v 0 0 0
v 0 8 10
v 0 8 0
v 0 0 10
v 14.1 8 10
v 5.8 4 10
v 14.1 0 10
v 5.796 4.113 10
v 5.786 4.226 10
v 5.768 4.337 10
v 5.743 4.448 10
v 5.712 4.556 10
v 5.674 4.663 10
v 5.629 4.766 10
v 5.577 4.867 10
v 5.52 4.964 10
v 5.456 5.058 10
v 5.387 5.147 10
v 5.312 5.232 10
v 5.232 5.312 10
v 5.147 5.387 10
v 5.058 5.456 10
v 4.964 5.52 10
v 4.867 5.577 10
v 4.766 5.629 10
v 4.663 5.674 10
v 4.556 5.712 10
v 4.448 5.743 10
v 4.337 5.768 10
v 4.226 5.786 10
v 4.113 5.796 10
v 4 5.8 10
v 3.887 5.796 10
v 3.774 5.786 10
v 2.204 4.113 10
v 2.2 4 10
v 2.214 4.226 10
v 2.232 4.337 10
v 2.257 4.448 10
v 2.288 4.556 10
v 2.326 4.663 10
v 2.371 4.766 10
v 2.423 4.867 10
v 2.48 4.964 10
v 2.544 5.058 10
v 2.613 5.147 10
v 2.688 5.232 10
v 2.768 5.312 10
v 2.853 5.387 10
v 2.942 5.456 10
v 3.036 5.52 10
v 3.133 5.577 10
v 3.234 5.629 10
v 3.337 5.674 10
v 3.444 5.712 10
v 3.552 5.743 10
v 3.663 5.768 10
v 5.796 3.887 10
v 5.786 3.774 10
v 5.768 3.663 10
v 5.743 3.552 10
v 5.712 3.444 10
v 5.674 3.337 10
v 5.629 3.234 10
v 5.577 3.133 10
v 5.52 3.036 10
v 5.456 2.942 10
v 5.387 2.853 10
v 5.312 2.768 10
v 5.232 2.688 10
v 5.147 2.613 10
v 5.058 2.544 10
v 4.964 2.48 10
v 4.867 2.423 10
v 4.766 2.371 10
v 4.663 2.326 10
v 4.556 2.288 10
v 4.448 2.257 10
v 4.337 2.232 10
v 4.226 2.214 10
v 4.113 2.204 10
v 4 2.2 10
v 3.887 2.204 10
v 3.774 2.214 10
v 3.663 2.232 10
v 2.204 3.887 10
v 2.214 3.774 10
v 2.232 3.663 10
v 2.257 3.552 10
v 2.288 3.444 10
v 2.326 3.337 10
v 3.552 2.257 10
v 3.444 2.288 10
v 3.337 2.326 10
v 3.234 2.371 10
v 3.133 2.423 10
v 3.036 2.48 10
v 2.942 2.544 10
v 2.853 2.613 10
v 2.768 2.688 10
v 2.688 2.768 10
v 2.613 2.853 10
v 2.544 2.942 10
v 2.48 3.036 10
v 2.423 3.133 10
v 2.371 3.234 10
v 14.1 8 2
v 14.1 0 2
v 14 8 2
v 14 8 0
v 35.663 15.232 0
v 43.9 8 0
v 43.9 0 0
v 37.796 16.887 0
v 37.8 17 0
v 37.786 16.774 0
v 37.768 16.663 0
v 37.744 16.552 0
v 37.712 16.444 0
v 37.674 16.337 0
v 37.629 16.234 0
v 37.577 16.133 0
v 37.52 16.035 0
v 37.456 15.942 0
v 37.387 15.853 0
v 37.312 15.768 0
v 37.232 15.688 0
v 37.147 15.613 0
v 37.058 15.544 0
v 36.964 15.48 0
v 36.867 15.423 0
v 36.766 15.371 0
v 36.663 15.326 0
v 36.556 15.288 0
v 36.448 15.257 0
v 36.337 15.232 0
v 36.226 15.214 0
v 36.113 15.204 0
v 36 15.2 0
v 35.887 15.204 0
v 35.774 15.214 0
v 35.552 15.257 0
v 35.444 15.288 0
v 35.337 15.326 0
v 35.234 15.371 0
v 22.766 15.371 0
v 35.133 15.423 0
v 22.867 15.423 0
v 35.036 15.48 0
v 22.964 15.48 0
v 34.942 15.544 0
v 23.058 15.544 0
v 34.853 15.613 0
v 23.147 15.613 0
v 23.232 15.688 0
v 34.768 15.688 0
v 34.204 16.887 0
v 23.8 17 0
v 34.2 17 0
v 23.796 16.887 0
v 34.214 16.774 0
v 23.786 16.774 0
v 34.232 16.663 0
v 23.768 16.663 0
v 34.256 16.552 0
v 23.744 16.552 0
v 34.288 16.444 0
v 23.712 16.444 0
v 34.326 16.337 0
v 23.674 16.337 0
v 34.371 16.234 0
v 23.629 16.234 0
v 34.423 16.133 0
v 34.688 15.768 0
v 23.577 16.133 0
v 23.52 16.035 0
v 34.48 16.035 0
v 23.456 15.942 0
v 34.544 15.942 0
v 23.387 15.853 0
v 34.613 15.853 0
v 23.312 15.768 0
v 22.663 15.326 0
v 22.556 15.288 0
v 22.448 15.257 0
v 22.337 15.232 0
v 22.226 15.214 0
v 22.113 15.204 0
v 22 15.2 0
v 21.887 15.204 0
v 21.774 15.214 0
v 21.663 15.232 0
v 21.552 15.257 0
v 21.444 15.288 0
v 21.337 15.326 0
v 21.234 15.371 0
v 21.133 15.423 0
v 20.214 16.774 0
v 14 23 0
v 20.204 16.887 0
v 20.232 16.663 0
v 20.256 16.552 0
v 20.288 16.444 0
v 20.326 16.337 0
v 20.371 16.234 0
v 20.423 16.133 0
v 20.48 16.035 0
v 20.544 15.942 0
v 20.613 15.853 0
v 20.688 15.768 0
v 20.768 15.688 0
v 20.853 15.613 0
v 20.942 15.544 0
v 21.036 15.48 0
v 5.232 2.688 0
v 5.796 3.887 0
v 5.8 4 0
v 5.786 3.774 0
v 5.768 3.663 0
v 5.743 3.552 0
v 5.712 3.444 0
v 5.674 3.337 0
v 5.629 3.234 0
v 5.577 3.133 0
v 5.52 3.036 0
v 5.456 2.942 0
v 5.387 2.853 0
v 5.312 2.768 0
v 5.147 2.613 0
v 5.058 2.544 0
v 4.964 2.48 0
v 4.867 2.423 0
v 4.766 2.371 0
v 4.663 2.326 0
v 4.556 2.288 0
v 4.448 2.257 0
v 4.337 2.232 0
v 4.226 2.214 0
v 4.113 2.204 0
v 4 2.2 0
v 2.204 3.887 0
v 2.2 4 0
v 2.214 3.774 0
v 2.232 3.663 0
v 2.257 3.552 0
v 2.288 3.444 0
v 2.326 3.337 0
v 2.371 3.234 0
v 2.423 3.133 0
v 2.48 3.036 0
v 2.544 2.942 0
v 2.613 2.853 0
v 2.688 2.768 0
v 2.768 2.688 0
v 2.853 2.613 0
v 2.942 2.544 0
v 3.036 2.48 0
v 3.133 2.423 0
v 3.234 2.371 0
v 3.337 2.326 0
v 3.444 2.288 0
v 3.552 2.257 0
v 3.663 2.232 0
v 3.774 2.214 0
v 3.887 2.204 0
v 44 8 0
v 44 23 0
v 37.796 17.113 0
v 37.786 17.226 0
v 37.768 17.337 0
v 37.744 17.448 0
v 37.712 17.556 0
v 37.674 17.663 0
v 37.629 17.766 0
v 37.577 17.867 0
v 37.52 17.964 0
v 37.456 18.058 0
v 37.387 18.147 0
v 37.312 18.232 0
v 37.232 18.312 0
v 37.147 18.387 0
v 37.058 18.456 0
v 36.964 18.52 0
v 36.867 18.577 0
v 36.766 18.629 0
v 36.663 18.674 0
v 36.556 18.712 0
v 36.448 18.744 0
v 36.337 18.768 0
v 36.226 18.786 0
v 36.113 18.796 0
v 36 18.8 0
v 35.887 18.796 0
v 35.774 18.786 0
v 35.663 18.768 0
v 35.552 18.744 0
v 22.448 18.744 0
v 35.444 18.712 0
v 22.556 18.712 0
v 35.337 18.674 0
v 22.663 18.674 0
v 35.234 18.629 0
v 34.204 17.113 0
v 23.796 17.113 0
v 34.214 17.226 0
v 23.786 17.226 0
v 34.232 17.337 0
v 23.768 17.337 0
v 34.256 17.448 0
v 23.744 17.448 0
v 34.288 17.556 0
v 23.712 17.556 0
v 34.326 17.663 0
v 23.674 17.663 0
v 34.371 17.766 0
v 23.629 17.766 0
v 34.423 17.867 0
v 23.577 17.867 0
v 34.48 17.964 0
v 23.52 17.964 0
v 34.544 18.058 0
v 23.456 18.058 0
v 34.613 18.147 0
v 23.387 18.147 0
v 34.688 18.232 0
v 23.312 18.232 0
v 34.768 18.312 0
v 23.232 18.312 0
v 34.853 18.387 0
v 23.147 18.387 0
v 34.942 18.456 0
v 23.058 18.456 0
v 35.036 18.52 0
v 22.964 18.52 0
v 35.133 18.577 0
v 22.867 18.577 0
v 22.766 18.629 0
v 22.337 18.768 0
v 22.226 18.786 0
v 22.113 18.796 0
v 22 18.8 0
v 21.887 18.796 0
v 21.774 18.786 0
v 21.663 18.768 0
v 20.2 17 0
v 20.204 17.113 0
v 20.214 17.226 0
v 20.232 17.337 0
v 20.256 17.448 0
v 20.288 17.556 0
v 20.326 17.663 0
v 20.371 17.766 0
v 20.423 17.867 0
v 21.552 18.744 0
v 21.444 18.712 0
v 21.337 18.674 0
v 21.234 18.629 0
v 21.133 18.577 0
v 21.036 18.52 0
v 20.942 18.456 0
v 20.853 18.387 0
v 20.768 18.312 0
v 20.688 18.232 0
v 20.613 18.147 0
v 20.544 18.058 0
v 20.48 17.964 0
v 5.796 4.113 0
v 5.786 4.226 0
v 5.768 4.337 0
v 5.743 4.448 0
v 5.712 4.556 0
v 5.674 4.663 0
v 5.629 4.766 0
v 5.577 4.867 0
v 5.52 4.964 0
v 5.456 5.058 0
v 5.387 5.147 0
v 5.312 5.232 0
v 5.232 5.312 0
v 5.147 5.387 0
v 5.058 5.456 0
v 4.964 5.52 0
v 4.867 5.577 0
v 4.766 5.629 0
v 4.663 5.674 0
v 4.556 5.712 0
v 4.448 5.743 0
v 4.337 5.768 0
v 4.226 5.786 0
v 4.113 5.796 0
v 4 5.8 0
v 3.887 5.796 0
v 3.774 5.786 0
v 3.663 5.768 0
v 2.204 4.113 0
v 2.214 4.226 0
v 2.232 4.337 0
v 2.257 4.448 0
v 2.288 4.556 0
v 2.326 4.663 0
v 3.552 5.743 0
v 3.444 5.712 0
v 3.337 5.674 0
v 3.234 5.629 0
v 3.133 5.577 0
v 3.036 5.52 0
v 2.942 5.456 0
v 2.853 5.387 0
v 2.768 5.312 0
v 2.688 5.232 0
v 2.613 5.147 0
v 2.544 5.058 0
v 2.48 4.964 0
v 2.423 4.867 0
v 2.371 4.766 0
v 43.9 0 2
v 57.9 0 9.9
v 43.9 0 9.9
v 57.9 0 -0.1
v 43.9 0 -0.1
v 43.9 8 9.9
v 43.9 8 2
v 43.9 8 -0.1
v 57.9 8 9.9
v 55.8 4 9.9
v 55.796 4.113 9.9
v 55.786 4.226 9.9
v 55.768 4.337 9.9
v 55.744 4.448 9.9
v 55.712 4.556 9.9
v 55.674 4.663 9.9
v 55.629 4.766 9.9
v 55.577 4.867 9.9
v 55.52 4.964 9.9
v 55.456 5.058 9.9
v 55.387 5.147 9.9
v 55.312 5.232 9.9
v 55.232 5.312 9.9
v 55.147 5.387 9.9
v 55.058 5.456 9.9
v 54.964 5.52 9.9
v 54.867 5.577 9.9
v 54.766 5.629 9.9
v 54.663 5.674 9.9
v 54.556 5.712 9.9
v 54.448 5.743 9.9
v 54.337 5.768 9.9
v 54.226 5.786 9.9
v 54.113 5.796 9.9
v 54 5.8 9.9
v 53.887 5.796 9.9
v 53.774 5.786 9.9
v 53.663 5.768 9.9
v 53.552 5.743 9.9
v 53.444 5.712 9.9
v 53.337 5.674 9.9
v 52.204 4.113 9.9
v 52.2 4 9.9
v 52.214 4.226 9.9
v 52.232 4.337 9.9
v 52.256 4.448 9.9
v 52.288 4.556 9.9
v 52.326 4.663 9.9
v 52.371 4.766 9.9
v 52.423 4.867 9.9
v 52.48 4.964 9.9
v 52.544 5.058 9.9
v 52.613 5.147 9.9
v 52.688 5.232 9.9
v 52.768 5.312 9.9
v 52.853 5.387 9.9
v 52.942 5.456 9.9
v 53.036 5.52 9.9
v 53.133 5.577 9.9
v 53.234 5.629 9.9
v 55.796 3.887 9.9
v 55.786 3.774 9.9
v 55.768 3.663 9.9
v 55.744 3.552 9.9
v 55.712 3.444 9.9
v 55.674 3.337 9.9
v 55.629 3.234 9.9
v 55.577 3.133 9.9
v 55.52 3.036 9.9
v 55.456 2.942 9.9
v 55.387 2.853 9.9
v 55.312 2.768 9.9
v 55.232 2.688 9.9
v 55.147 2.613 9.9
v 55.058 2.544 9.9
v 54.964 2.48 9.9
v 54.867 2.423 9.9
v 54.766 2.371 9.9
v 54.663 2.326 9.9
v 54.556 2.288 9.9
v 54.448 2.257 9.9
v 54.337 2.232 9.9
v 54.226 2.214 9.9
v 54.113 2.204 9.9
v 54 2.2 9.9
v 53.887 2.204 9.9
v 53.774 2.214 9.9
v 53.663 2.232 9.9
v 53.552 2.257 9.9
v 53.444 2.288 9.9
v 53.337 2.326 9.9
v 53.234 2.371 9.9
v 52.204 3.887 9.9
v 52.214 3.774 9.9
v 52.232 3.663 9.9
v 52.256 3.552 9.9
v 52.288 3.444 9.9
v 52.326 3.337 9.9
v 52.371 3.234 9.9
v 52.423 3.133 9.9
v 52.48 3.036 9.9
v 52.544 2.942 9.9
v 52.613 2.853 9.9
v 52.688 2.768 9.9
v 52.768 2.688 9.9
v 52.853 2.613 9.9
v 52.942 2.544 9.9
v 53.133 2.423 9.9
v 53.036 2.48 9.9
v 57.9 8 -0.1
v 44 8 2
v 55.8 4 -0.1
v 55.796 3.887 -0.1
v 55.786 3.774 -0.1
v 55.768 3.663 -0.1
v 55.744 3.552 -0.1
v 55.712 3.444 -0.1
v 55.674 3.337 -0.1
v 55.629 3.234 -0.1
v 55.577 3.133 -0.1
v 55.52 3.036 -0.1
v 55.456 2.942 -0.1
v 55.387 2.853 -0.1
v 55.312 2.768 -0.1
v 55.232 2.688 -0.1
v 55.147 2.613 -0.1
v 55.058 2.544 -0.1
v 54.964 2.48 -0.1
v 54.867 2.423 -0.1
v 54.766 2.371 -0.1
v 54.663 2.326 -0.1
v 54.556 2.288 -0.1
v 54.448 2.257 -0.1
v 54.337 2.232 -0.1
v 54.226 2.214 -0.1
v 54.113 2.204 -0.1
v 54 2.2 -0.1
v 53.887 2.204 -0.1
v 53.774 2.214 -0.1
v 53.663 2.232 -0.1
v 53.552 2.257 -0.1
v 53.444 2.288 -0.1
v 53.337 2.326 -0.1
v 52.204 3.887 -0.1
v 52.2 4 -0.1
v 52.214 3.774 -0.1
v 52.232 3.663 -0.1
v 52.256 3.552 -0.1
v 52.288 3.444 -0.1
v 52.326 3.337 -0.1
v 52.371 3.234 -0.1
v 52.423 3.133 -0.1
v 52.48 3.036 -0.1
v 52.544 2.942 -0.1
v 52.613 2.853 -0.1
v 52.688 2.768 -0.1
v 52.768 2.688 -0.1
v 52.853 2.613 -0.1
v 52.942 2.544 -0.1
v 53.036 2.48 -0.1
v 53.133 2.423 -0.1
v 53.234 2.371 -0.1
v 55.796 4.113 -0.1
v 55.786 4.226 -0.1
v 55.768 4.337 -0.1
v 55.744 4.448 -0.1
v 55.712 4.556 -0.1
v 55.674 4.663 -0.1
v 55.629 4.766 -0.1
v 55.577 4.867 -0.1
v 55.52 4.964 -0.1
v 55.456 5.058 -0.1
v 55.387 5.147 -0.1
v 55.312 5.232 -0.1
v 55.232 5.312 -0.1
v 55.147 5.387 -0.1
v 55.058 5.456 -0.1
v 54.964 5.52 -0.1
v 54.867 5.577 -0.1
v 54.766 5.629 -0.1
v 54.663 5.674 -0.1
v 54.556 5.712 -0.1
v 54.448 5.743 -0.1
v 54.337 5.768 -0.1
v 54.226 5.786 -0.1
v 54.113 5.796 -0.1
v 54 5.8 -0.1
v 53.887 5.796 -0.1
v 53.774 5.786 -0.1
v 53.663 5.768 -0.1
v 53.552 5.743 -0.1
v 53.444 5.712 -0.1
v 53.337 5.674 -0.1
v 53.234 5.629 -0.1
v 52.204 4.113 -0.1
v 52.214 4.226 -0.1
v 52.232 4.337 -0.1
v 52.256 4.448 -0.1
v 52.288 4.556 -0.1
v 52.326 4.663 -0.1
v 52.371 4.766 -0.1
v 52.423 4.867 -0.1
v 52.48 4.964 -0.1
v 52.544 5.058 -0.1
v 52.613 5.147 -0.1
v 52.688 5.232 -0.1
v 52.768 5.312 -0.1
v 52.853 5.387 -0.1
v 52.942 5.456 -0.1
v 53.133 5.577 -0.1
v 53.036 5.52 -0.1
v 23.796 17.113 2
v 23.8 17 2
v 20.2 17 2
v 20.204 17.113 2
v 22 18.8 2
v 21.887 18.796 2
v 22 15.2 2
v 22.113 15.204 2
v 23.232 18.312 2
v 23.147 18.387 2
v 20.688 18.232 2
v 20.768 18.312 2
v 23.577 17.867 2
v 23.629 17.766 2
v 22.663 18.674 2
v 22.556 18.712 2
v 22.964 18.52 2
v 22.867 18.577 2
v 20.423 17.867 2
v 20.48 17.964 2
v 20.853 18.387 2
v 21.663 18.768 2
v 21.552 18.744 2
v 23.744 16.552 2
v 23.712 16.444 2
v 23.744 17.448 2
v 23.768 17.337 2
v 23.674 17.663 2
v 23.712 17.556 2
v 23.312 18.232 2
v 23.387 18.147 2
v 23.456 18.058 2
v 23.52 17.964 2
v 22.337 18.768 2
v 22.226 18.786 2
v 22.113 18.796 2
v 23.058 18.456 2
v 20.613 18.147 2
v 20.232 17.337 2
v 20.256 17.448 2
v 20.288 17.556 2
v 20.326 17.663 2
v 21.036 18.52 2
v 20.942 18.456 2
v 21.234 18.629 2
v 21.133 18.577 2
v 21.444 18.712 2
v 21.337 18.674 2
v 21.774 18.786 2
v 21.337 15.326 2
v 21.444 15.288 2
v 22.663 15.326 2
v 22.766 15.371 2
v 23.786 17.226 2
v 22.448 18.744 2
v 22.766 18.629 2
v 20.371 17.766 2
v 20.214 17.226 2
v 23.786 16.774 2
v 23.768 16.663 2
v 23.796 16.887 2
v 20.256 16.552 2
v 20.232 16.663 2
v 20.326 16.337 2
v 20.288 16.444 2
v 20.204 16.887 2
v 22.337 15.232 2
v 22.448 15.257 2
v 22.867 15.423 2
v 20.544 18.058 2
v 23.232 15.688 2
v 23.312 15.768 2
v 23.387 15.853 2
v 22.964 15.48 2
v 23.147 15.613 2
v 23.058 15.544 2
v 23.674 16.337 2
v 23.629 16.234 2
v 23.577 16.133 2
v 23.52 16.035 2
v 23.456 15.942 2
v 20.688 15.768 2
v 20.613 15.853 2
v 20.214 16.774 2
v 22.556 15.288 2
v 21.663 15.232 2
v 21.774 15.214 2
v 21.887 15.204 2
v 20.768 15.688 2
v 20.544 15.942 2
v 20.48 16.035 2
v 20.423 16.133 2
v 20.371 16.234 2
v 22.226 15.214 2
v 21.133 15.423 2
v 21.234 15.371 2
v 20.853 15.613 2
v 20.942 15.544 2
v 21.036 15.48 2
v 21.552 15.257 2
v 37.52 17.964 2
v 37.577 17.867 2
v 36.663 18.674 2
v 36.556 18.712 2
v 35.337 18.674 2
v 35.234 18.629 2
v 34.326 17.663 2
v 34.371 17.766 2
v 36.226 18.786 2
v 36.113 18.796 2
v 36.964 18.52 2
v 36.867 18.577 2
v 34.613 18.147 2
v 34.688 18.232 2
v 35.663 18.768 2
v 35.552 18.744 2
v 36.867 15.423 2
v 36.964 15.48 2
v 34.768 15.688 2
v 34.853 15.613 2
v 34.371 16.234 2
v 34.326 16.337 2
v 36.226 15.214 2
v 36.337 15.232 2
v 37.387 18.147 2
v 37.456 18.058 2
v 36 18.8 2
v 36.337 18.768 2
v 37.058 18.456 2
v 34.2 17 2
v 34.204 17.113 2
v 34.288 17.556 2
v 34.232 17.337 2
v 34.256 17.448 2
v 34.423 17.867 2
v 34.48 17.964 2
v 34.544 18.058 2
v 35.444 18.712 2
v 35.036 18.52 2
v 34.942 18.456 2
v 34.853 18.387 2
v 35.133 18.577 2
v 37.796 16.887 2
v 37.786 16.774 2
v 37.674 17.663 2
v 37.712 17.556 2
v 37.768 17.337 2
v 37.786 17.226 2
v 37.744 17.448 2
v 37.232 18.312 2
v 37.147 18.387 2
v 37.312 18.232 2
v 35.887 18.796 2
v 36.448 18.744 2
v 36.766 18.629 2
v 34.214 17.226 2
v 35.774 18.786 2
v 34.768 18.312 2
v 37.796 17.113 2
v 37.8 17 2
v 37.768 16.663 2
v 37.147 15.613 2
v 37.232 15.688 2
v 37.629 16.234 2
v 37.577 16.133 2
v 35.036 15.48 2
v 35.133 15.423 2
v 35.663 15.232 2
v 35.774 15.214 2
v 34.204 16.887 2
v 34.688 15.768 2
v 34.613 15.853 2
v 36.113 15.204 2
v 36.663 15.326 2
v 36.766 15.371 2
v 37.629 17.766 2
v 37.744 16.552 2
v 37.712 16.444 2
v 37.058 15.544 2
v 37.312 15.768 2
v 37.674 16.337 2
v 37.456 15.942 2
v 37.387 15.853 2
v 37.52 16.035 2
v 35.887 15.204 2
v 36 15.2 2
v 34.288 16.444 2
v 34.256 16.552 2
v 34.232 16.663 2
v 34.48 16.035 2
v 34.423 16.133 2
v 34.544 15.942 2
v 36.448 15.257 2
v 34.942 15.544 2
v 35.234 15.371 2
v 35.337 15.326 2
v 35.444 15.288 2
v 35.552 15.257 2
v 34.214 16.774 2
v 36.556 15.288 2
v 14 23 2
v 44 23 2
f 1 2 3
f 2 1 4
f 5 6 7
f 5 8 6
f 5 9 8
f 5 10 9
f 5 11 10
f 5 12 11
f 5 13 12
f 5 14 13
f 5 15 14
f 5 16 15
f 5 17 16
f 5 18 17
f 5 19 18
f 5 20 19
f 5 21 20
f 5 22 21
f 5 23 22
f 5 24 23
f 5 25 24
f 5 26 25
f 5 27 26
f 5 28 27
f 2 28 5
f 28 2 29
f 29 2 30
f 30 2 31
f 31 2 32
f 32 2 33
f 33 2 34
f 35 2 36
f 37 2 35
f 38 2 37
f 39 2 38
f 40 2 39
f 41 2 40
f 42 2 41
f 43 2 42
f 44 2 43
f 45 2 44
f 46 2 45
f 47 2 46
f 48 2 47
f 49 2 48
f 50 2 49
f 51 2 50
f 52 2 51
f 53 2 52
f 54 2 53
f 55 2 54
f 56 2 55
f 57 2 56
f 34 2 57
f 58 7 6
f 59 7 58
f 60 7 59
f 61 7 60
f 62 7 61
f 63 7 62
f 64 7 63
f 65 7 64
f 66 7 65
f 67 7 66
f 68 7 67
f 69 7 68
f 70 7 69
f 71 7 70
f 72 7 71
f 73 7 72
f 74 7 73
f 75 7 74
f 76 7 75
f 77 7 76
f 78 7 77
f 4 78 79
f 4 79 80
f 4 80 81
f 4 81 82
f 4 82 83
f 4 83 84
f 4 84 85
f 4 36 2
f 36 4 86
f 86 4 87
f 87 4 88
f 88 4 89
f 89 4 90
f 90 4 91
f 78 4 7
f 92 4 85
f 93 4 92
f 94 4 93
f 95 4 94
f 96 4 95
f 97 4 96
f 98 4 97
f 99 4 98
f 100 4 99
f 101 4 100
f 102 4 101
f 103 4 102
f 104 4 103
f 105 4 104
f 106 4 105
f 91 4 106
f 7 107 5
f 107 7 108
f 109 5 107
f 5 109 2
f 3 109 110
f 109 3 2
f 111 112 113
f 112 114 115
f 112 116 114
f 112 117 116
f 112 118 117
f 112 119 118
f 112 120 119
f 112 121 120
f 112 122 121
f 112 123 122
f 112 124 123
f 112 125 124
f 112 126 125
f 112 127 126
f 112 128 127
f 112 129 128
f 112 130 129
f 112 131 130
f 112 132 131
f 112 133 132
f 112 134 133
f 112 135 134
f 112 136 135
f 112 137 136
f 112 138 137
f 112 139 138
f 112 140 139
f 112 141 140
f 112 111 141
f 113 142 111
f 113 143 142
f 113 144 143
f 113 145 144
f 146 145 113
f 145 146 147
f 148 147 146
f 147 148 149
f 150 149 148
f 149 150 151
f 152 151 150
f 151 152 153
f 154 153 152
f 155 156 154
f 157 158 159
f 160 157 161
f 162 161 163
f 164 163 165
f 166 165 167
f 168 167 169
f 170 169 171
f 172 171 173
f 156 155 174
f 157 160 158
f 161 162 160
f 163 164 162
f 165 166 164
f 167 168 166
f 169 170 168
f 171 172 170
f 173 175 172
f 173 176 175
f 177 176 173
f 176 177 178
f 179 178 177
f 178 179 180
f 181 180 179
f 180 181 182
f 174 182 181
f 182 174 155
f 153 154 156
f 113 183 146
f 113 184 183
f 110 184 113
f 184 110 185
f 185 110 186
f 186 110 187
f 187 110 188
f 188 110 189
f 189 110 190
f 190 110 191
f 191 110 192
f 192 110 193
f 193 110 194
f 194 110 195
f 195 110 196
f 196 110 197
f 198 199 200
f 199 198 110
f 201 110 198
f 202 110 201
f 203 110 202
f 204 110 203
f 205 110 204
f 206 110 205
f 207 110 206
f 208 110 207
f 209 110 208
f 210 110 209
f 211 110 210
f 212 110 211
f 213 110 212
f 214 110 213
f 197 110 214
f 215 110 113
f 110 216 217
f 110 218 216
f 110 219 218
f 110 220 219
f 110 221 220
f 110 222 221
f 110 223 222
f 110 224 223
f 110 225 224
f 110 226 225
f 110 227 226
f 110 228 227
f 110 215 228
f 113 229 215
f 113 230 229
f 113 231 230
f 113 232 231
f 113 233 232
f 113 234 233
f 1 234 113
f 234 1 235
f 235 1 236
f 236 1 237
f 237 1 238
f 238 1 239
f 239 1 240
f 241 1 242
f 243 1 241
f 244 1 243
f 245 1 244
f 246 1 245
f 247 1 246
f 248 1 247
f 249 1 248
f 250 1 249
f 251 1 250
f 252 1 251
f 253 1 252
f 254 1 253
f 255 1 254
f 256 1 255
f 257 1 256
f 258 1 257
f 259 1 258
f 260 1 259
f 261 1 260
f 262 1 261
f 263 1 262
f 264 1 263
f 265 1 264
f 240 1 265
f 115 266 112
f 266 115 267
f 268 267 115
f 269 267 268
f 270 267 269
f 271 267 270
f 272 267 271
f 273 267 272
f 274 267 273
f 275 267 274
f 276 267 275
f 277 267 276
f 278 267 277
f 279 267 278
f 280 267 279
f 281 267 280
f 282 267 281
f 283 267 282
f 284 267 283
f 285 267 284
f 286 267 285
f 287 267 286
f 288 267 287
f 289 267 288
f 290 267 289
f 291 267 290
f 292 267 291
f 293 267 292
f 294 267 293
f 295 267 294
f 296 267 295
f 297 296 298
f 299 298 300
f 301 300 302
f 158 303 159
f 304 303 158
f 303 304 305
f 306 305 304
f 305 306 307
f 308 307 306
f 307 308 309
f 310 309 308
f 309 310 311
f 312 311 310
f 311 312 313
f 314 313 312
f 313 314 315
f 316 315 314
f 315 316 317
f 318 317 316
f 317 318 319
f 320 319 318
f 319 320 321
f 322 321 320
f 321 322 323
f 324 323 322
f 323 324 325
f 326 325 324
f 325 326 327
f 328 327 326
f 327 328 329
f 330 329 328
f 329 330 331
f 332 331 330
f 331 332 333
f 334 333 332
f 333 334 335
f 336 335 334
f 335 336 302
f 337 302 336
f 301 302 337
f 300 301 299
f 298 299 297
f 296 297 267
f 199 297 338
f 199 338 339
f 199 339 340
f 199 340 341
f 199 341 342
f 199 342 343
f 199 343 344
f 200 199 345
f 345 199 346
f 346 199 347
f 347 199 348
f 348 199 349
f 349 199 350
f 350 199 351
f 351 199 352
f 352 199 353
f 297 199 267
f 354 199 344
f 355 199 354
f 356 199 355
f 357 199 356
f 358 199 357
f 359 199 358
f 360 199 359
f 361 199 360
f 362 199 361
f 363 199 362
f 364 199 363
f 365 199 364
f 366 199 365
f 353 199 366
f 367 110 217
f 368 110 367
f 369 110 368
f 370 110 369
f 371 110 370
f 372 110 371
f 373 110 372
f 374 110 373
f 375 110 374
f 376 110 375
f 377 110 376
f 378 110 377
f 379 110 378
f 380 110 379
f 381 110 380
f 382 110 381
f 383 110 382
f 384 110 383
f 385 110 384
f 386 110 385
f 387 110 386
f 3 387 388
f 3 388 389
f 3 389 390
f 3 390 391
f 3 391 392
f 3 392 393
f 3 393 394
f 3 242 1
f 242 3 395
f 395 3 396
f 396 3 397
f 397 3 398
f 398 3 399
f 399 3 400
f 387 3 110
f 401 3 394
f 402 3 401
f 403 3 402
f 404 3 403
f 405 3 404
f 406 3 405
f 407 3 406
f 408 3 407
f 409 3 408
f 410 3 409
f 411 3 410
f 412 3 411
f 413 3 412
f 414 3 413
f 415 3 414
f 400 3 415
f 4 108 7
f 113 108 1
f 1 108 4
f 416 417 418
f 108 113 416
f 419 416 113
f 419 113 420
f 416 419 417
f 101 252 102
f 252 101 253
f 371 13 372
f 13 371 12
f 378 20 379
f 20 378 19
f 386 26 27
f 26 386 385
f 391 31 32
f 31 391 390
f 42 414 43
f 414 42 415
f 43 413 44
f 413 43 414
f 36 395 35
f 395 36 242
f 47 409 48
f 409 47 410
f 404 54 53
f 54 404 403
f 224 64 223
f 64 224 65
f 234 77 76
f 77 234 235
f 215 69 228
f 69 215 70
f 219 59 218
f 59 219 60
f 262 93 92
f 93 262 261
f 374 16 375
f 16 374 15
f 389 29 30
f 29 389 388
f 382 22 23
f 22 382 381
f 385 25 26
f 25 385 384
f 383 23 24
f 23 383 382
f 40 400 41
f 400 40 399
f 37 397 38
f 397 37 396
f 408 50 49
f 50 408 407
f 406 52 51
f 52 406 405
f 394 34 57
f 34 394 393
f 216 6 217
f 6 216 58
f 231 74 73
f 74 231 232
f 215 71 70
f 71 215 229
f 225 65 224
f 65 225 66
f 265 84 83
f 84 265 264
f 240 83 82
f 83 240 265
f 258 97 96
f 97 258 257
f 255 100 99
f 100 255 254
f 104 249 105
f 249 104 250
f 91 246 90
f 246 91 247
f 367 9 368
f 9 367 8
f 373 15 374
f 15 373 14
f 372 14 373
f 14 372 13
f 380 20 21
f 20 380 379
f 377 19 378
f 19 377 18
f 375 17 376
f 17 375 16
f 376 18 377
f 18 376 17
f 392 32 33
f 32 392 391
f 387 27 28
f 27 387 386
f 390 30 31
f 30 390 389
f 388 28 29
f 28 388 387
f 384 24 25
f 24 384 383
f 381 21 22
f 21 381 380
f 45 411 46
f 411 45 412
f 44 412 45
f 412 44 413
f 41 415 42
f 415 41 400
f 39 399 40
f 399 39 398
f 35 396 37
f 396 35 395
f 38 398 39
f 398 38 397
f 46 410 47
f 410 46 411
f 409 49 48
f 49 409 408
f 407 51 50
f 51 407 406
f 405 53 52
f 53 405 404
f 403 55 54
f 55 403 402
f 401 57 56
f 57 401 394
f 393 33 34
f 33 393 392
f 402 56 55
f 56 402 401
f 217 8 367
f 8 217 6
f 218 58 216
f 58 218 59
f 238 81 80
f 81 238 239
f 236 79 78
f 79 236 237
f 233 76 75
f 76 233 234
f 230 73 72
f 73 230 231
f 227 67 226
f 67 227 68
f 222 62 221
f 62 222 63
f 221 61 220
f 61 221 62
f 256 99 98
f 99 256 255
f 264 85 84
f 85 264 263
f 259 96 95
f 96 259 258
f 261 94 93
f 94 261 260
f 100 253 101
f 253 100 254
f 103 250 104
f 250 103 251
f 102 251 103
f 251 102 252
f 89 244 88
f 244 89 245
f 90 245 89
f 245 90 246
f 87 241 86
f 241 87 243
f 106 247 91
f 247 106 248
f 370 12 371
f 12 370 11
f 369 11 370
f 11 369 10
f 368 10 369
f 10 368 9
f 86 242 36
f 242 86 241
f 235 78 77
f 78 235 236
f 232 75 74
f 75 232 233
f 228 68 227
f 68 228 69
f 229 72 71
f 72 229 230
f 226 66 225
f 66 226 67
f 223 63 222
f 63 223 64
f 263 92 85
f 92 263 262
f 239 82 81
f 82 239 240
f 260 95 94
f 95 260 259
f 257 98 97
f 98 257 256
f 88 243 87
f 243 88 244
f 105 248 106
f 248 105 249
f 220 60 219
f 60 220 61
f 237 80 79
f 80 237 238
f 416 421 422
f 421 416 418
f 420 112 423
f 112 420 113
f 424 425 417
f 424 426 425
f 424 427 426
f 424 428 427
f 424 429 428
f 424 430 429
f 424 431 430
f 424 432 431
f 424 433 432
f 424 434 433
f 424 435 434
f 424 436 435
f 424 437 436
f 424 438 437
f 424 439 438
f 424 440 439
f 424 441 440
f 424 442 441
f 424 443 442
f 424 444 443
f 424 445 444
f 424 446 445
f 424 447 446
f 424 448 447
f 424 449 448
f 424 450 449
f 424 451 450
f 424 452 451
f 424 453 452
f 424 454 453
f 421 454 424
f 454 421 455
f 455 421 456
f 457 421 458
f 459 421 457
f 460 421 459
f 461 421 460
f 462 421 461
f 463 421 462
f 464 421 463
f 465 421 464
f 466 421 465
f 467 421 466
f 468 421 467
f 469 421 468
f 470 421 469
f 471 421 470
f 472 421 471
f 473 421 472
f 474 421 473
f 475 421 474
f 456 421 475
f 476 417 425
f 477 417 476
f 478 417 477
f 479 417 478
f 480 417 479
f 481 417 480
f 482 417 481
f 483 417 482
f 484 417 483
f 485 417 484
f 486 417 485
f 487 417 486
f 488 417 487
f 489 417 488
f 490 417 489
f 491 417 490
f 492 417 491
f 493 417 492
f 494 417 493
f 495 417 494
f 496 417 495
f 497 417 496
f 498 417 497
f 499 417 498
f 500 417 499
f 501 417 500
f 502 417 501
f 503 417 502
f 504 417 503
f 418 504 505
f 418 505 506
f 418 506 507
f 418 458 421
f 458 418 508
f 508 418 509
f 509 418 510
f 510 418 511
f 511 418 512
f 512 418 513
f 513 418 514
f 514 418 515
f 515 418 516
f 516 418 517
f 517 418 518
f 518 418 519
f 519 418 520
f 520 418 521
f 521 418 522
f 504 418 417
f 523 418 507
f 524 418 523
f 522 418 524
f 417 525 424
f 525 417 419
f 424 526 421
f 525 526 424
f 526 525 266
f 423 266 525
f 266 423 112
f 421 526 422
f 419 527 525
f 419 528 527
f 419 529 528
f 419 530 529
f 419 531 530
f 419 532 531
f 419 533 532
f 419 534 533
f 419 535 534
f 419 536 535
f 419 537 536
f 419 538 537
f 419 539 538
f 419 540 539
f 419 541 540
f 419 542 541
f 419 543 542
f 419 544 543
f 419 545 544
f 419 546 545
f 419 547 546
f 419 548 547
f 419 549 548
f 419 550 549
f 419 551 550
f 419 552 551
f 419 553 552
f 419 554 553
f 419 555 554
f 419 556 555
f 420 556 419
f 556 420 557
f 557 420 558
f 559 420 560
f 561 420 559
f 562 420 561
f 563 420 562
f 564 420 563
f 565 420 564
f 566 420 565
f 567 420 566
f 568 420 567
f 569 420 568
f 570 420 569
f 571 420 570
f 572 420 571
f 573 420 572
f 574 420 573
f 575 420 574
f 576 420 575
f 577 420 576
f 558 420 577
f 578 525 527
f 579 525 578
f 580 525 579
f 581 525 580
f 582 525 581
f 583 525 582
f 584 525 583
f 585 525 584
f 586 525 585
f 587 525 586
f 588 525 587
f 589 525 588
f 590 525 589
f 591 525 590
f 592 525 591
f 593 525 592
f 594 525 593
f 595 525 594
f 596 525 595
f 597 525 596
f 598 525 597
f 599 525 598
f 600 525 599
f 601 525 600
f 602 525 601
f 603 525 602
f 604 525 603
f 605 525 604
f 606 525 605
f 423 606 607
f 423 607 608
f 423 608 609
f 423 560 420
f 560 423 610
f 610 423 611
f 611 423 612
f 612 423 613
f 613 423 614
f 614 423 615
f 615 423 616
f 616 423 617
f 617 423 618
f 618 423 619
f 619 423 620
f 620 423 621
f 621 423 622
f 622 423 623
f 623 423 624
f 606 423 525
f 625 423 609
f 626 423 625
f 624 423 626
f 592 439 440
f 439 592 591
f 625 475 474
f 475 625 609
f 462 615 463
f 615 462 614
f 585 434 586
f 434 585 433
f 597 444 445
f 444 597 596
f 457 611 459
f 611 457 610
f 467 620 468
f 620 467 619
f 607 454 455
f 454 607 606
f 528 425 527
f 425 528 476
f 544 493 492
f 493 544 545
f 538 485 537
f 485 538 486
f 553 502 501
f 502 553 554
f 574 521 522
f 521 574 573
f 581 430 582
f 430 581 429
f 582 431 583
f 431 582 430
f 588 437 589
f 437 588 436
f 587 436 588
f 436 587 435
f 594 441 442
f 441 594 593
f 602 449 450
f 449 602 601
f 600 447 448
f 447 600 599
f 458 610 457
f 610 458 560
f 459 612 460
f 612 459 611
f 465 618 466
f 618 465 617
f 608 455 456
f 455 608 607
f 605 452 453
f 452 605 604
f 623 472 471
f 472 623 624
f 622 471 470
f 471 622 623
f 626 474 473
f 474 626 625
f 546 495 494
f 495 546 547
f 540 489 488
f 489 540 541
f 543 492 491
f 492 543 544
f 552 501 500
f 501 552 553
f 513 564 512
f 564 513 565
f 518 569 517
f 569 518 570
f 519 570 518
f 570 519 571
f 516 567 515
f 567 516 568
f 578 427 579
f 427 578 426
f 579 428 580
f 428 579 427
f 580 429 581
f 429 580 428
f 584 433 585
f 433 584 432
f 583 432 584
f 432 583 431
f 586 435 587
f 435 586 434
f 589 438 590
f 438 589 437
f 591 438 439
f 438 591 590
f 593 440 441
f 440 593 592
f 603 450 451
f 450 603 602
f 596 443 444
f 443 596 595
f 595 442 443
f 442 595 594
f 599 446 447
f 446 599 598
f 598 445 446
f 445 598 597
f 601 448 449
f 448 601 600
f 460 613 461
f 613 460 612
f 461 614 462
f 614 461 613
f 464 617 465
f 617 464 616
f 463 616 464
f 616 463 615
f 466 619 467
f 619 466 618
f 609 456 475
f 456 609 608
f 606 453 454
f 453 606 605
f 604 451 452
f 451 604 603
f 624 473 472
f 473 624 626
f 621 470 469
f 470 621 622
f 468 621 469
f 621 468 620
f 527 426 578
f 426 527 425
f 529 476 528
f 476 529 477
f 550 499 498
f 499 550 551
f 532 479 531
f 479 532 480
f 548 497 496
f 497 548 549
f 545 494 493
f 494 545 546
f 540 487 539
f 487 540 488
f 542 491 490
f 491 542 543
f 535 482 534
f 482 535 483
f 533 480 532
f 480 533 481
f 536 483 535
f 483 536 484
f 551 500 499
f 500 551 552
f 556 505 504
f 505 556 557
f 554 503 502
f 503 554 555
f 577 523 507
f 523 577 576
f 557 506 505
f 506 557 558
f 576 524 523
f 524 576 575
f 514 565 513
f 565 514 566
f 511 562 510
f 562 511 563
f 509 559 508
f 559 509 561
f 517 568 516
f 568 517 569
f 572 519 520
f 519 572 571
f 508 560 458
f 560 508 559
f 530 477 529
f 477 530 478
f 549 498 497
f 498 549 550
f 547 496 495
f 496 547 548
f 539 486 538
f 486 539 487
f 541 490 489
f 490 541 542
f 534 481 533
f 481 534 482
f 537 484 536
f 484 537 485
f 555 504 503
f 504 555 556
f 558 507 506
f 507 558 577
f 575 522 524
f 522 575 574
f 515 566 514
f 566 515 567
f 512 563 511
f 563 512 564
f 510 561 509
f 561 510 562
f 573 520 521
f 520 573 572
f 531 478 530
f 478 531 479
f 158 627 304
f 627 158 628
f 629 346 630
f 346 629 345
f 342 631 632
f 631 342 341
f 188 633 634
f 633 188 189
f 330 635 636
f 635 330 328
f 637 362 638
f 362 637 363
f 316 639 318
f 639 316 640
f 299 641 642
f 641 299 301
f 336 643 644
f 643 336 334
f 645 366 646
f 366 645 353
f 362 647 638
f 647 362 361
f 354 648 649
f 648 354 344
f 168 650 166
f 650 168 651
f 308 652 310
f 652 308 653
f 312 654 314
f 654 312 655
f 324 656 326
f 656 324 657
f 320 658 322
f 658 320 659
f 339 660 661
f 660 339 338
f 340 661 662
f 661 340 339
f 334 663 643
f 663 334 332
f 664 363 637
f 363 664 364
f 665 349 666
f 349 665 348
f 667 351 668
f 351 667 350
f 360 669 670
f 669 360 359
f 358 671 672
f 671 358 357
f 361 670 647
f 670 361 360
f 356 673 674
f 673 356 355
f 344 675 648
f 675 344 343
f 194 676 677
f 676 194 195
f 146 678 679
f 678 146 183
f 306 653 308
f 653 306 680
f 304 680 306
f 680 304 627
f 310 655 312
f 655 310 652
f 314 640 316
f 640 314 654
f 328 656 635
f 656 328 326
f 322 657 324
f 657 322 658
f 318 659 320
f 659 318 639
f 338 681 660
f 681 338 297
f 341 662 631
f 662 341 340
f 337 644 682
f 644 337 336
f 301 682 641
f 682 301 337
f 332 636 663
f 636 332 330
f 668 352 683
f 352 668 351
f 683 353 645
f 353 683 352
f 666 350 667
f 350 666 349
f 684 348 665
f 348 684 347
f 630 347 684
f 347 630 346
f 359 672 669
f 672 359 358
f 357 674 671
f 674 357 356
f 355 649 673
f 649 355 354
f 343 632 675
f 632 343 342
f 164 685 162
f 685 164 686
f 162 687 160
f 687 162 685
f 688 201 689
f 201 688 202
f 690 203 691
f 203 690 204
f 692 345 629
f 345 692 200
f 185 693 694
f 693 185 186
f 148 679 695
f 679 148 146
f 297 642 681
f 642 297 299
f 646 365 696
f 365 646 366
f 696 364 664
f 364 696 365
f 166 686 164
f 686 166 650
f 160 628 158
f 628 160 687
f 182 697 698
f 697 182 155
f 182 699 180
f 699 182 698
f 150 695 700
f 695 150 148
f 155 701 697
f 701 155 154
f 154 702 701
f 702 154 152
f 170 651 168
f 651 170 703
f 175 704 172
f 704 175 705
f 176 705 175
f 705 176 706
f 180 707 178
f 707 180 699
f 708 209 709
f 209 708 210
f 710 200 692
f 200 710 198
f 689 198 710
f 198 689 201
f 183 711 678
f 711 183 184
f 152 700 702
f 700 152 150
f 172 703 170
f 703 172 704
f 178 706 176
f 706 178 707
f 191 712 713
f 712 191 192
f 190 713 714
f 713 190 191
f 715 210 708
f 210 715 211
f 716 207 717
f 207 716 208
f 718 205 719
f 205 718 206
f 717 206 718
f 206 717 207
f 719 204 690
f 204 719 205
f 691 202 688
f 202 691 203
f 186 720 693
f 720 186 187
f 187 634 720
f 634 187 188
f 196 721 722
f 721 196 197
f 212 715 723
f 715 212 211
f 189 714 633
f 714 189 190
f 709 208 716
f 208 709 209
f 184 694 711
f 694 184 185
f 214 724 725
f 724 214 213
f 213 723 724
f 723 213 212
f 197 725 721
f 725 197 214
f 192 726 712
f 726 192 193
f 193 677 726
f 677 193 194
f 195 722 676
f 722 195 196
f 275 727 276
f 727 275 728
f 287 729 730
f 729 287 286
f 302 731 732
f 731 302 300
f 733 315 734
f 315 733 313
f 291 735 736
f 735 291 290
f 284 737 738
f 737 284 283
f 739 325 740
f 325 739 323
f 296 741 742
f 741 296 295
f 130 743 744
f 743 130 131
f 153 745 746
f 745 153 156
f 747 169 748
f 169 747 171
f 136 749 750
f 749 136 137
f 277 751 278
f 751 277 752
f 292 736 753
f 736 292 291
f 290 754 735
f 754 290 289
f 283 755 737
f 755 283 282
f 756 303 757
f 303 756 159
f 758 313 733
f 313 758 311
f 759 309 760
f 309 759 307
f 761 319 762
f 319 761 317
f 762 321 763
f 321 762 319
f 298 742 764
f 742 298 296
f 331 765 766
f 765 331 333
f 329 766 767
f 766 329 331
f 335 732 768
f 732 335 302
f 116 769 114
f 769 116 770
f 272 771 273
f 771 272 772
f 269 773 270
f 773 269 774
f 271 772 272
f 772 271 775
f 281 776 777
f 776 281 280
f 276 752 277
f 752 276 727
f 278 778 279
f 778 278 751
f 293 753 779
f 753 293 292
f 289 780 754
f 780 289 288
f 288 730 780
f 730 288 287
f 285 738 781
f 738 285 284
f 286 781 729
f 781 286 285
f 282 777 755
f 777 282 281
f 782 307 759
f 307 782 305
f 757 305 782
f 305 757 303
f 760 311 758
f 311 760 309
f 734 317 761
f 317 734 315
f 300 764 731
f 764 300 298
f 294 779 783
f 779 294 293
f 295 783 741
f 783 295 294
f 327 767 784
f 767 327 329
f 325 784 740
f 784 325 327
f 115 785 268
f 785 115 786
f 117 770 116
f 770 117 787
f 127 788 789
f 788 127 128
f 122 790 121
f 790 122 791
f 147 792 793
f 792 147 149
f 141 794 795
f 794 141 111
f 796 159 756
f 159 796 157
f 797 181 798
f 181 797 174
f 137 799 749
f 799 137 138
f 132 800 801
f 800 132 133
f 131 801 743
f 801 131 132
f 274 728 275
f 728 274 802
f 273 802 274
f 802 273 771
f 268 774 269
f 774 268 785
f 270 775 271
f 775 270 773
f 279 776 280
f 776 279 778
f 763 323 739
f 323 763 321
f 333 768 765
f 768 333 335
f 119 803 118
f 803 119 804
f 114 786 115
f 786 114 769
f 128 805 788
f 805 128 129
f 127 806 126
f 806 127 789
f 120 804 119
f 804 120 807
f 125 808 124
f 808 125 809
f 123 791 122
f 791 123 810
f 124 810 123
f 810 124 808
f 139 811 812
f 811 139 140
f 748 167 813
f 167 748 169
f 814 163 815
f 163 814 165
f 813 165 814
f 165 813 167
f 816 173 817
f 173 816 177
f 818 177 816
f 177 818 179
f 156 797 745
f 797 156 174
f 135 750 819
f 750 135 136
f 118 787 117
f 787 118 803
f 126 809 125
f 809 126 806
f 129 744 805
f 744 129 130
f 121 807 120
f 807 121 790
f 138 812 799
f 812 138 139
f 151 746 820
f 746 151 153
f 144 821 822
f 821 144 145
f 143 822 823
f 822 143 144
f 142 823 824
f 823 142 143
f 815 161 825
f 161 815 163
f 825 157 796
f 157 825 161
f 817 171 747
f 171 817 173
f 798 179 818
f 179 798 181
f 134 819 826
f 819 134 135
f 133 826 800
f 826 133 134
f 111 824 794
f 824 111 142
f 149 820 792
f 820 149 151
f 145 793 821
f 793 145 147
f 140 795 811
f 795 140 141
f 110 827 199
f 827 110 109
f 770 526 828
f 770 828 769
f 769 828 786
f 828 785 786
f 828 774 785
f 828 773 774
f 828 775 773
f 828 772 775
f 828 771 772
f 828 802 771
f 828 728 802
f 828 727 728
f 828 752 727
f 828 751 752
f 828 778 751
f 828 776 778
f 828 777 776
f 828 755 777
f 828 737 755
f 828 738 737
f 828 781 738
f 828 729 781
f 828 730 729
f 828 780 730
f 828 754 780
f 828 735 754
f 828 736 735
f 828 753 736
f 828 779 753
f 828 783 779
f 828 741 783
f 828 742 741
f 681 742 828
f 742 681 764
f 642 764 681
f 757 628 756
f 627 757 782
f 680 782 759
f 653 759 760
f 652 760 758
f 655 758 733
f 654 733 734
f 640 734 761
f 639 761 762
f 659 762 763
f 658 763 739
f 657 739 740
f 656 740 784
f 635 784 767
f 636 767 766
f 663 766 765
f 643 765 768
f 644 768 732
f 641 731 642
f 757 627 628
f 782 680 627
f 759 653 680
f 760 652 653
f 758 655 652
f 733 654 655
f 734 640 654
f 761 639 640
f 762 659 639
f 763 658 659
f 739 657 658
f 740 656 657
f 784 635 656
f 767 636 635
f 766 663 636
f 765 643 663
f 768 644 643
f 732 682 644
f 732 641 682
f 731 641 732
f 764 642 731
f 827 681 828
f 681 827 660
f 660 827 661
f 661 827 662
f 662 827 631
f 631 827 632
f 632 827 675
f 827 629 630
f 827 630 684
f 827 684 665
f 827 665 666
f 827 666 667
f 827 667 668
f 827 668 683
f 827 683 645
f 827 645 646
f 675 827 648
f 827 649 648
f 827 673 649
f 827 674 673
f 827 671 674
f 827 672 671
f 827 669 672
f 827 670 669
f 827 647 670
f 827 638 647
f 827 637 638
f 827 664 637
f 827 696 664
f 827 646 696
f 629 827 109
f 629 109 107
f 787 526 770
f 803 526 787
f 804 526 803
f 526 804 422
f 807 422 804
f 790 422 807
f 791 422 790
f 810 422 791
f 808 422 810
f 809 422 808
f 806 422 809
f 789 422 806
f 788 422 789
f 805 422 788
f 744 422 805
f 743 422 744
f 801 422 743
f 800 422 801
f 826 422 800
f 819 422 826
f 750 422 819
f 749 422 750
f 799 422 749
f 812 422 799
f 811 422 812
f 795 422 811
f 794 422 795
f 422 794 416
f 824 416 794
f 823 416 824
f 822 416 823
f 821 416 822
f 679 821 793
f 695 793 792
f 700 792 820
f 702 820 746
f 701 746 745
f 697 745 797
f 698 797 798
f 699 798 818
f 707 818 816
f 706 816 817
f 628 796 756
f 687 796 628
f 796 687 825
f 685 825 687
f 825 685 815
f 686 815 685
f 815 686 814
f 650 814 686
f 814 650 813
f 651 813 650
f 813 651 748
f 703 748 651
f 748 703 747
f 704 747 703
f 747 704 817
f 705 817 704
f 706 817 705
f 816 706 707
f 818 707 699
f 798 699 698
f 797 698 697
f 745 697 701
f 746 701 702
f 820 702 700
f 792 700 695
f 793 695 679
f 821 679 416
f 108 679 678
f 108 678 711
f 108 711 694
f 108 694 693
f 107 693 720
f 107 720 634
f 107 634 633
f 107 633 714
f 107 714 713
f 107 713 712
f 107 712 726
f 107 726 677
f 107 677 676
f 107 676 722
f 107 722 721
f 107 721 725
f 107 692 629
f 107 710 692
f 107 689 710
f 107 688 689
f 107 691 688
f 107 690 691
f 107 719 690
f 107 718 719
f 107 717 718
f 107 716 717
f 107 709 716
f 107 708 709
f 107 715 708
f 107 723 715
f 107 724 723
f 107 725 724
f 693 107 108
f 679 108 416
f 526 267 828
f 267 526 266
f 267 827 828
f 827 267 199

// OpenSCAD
separacionTornillos = 50;
fondoSoportes = 8;
grosorSuelo = 2;
alturaTotal = 35;
huecoX = 30;
tamXTotal = separacionTornillos + fondoSoportes;
distanciaTornilloSensor = 17;

// Soporte izquierdo
difference() {
    cube([tamXTotal/2-huecoX/2+0.1, fondoSoportes, 10]);
    translate([fondoSoportes/2, fondoSoportes/2, -0.1]) {
        cylinder(h = 15.2, r = 1.8, $fn=100);
    }
}

// Soporte derecho
difference() {
    translate([tamXTotal/2+huecoX/2-0.1, 0, -0.1]) {
        cube([tamXTotal/2-huecoX/2, fondoSoportes, 10]);
    }
    translate([separacionTornillos+fondoSoportes/2, fondoSoportes/2, -0.2]) {
        cylinder(h = 15.2, r = 1.8, $fn=100);
    }
}

// Suelo soporte
translate([tamXTotal/2-huecoX/2, 0, 0]) {
    difference() {
        cube([huecoX, distanciaTornilloSensor + 6, grosorSuelo]);
        translate([huecoX/2, distanciaTornilloSensor, 0]) {
            translate([-7, 0, 0]) {
                cylinder(h = 15.2, r = 1.8, $fn=100);
            }
            translate([7, 0, 0]) {
                cylinder(h = 15.2, r = 1.8, $fn=100);
            }
        }        
    }
}



//    translate([20 + 5 + 22, 6, -0.1]) {
//        cylinder(h = 5.2, r = 1.8, $fn=100);
//    }
    
// 14 ancho
// 24 hasta tornillo

//translate([9, 0, 0]) {    
//    // base central
//    difference() {
//        cube([5 + 24 + 5, 12, 20]);
//        // Hueco
//        translate([5, 0, 0]) {    
//            cube([24, 12, 15]);
//        }
//    }
//    // Ala Izquierda
//    difference() {
//        cube([5, 12, 20 + 16]);
//        translate([5/2, 12/2, 20 + 16 - 8]) {
//            cylinder(h = 8.1, r = 1.3, $fn=100);
//        }
//    }
//    // Ala Derecha
//    translate([5 + 24, 0, 0]) {
//        difference() {
//            cube([5, 12, 20 + 16]);
//            translate([5/2, 12/2, 20 + 16 - 8]) {
//                cylinder(h = 8.1, r = 1.3, $fn=100);
//            }
//            // Muesca para cable
//            translate([-0.1, -0.1, 24]) {
//                cube([5.2, 8, 3]);
//            }
//        }
//    }
//}
